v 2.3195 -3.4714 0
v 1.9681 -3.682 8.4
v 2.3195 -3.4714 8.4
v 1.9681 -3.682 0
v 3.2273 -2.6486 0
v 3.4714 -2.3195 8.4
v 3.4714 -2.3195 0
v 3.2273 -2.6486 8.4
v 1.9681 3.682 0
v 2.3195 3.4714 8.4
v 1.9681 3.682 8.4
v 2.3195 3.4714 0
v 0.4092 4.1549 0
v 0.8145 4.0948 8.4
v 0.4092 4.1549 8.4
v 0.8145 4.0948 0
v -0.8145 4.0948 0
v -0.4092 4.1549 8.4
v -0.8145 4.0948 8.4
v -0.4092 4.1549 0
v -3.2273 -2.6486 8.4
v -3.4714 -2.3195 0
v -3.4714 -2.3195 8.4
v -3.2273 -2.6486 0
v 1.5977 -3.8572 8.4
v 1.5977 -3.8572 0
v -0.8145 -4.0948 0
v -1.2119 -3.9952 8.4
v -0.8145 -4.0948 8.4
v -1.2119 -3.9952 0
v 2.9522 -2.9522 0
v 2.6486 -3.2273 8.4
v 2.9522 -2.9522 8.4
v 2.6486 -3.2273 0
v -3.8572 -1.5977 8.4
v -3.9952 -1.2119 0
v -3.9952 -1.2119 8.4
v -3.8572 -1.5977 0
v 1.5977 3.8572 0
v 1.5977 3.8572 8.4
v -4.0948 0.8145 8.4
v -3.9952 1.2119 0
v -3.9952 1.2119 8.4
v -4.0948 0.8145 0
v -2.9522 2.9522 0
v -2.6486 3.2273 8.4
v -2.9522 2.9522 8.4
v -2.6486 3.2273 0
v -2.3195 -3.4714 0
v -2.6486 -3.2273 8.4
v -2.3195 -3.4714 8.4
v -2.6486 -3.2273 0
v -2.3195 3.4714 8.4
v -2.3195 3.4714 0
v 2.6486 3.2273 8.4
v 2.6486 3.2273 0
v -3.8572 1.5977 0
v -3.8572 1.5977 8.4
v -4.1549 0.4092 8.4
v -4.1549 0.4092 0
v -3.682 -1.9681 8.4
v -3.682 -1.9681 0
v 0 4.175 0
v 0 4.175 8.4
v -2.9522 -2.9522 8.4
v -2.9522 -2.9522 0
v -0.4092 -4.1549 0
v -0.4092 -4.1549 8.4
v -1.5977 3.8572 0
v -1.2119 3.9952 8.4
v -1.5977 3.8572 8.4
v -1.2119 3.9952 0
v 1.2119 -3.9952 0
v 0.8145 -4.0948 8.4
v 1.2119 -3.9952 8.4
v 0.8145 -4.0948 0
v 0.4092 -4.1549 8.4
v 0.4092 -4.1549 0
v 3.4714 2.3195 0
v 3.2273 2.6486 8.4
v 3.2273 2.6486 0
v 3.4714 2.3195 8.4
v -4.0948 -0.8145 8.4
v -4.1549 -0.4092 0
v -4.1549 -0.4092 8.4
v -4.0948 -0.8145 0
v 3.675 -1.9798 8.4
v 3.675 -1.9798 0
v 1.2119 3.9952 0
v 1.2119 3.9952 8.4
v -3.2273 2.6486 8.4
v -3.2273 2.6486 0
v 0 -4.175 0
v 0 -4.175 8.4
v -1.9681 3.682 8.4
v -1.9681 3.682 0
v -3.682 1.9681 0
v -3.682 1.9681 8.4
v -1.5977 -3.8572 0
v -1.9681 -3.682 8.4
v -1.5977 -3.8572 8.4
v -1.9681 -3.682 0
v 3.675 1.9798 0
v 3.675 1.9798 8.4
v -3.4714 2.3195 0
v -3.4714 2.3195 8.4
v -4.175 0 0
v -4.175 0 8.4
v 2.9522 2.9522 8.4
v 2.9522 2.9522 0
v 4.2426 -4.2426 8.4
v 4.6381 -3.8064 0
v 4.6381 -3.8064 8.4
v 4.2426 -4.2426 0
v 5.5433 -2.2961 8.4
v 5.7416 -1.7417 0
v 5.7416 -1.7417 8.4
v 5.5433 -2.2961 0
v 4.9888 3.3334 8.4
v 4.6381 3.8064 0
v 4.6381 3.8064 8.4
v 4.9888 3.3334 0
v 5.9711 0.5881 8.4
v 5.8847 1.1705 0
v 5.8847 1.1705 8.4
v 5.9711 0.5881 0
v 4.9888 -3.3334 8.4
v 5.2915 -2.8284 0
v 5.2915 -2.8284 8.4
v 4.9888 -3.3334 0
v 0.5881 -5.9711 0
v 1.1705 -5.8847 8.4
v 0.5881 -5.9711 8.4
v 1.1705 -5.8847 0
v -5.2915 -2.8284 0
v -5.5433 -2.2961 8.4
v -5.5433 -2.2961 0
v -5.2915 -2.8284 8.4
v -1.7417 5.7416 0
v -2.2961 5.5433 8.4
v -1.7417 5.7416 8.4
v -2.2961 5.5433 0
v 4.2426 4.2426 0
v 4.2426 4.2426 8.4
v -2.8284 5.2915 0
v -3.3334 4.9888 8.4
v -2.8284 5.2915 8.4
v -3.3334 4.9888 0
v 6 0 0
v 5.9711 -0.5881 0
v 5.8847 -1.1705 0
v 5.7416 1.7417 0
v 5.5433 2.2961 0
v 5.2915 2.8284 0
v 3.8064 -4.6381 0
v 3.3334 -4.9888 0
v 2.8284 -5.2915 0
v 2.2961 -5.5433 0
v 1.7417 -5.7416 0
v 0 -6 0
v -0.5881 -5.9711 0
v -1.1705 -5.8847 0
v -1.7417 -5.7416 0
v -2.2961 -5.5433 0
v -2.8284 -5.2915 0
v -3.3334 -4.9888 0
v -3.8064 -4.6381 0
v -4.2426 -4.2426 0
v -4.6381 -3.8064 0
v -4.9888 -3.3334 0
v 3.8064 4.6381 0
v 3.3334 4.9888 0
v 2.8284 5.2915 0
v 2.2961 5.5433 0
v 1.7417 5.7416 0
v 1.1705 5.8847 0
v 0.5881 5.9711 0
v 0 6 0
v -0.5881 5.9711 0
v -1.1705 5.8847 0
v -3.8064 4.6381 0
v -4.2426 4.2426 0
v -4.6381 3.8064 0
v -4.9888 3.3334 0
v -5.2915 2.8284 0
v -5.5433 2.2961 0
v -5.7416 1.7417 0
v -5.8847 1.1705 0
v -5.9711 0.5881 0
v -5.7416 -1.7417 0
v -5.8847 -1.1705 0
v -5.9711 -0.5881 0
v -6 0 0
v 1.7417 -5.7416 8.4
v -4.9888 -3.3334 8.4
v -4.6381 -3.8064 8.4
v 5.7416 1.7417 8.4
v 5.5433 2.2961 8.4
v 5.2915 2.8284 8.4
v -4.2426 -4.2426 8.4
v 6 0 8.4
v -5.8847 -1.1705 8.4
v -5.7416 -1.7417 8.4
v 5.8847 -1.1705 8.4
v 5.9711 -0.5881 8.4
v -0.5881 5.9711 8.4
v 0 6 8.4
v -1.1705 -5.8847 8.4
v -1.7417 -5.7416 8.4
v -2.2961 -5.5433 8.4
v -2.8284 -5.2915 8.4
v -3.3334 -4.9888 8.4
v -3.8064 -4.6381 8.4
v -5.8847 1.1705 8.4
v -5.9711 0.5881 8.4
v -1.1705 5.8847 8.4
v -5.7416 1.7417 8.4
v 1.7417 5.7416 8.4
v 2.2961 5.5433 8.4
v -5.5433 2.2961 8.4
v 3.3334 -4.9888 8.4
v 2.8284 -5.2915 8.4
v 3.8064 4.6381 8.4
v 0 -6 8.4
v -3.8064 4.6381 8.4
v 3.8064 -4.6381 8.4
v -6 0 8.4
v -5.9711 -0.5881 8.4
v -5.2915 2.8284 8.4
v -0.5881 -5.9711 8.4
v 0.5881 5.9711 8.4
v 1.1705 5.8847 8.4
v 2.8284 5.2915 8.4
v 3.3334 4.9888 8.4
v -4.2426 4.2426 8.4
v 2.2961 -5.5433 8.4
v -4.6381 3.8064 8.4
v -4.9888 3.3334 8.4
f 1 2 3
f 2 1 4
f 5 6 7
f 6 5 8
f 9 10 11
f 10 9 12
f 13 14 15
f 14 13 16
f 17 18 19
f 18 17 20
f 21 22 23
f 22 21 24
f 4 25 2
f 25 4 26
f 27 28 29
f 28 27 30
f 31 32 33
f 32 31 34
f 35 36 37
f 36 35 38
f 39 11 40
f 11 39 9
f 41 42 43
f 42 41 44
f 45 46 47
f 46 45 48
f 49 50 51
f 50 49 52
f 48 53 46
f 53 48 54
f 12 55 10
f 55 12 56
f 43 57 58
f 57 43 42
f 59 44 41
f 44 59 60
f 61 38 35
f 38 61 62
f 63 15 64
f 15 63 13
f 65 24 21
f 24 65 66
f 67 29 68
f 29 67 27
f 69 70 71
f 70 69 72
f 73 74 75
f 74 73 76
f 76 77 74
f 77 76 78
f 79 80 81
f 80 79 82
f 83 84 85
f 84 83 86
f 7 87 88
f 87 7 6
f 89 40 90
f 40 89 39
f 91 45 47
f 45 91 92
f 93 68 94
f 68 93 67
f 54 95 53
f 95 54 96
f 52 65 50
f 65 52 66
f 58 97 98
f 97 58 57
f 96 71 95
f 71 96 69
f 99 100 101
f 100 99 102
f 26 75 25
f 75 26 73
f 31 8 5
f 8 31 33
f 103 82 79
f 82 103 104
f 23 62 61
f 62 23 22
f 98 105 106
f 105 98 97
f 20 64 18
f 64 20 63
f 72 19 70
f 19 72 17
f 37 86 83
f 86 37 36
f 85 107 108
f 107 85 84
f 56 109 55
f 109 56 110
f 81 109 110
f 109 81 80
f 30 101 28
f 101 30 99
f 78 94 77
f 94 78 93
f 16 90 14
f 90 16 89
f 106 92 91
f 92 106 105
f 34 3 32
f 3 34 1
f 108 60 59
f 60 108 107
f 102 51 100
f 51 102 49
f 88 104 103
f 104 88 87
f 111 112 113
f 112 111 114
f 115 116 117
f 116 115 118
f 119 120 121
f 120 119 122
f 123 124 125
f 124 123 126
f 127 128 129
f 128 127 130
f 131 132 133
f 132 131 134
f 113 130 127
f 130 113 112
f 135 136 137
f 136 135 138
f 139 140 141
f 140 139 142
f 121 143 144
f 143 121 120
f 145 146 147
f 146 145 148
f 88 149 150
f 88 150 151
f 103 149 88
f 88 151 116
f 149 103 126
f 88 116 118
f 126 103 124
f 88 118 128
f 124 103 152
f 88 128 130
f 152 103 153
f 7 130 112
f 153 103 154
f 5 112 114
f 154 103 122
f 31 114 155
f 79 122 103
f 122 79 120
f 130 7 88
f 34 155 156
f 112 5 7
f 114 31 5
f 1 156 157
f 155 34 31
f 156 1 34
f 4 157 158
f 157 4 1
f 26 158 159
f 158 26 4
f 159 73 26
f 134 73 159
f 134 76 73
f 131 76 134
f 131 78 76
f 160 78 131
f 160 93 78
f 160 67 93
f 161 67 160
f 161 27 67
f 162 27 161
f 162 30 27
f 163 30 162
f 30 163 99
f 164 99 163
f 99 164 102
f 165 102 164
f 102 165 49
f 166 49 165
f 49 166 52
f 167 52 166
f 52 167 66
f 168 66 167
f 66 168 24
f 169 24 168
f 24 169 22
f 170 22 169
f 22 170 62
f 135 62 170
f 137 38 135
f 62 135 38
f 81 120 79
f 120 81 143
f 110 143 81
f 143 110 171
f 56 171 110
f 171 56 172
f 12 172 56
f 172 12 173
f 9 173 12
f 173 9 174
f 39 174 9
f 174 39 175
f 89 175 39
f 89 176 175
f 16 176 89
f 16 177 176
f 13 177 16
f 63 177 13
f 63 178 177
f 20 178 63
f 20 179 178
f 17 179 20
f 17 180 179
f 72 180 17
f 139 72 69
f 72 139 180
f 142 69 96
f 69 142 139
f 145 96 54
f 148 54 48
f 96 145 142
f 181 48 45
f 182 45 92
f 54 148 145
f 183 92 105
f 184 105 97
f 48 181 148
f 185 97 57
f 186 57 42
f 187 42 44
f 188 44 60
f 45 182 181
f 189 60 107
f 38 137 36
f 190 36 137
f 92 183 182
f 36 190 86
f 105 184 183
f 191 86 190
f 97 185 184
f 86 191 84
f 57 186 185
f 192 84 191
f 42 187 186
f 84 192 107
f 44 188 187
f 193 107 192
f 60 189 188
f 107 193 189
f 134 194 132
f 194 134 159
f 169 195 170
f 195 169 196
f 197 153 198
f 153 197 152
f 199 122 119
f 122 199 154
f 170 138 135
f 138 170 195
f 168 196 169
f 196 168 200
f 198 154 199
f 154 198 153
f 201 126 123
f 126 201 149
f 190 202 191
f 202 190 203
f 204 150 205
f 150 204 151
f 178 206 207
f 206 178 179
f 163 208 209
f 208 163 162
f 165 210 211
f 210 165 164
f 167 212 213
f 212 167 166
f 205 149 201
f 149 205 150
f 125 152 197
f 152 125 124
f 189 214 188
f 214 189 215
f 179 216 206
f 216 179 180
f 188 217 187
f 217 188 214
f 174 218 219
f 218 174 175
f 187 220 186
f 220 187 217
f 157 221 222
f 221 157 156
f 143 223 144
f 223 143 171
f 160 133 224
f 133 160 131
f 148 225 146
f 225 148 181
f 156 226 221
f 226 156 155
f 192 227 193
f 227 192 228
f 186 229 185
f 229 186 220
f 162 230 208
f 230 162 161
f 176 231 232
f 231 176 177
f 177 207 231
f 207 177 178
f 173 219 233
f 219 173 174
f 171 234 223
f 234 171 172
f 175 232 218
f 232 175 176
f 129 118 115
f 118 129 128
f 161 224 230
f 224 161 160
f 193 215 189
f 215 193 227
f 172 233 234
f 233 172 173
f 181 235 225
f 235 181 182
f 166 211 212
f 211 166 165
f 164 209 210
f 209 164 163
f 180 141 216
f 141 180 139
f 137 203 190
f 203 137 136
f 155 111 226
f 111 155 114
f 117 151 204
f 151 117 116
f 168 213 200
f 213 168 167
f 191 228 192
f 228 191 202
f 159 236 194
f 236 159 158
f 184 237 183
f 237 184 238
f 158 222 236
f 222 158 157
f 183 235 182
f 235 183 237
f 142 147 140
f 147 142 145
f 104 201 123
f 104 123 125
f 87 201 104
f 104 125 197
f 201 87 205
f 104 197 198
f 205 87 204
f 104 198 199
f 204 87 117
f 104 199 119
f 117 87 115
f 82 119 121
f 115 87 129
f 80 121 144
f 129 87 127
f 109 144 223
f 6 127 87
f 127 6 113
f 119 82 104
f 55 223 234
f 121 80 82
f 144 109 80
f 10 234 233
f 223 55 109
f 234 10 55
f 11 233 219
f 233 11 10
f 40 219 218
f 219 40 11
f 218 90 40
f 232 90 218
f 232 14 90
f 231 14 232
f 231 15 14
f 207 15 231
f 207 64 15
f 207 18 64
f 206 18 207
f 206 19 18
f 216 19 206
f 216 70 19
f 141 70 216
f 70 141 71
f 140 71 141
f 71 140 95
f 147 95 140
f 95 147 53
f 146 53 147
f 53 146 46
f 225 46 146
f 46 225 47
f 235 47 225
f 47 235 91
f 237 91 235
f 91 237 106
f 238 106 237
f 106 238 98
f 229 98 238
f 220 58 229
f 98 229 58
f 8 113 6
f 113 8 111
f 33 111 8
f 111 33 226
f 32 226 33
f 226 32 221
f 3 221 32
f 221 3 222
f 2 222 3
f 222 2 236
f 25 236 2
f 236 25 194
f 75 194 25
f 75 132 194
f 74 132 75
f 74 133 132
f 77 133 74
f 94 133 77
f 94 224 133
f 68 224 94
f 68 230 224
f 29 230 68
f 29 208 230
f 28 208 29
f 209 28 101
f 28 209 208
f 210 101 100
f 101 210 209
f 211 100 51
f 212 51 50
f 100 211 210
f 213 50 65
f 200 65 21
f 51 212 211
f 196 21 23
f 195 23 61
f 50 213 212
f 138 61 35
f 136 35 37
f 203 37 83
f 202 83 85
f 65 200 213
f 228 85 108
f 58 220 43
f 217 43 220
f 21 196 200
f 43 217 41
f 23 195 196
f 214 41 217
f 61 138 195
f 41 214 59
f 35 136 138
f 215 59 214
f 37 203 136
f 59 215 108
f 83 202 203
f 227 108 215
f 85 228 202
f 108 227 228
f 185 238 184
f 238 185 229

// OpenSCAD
// Gen-DC — gap sleeve: rigid spacer on the shaft BETWEEN the two rotor carriers (passes through the stator
// hole). Length = m2m, so it sets the magnet gap and carries the full magnet pull. Print x1, upright.
include <parameters.scad>;
$fn = 64;
// D-flat keyed bore: flat faces +X (angle 0 = magnet pocket 0 = index notch)
module dflat_bore(h) {
    intersection() {
        cylinder(d=shaft_bore, h=h);
        translate([-shaft_bore, -shaft_bore, 0]) cube([shaft_bore + dflat_x, 2*shaft_bore, h]);
    }
}

difference() {
    cylinder(d=sleeve_od, h=m2m);
    translate([0, 0, -0.1]) dflat_bore(m2m + 0.2);
}
